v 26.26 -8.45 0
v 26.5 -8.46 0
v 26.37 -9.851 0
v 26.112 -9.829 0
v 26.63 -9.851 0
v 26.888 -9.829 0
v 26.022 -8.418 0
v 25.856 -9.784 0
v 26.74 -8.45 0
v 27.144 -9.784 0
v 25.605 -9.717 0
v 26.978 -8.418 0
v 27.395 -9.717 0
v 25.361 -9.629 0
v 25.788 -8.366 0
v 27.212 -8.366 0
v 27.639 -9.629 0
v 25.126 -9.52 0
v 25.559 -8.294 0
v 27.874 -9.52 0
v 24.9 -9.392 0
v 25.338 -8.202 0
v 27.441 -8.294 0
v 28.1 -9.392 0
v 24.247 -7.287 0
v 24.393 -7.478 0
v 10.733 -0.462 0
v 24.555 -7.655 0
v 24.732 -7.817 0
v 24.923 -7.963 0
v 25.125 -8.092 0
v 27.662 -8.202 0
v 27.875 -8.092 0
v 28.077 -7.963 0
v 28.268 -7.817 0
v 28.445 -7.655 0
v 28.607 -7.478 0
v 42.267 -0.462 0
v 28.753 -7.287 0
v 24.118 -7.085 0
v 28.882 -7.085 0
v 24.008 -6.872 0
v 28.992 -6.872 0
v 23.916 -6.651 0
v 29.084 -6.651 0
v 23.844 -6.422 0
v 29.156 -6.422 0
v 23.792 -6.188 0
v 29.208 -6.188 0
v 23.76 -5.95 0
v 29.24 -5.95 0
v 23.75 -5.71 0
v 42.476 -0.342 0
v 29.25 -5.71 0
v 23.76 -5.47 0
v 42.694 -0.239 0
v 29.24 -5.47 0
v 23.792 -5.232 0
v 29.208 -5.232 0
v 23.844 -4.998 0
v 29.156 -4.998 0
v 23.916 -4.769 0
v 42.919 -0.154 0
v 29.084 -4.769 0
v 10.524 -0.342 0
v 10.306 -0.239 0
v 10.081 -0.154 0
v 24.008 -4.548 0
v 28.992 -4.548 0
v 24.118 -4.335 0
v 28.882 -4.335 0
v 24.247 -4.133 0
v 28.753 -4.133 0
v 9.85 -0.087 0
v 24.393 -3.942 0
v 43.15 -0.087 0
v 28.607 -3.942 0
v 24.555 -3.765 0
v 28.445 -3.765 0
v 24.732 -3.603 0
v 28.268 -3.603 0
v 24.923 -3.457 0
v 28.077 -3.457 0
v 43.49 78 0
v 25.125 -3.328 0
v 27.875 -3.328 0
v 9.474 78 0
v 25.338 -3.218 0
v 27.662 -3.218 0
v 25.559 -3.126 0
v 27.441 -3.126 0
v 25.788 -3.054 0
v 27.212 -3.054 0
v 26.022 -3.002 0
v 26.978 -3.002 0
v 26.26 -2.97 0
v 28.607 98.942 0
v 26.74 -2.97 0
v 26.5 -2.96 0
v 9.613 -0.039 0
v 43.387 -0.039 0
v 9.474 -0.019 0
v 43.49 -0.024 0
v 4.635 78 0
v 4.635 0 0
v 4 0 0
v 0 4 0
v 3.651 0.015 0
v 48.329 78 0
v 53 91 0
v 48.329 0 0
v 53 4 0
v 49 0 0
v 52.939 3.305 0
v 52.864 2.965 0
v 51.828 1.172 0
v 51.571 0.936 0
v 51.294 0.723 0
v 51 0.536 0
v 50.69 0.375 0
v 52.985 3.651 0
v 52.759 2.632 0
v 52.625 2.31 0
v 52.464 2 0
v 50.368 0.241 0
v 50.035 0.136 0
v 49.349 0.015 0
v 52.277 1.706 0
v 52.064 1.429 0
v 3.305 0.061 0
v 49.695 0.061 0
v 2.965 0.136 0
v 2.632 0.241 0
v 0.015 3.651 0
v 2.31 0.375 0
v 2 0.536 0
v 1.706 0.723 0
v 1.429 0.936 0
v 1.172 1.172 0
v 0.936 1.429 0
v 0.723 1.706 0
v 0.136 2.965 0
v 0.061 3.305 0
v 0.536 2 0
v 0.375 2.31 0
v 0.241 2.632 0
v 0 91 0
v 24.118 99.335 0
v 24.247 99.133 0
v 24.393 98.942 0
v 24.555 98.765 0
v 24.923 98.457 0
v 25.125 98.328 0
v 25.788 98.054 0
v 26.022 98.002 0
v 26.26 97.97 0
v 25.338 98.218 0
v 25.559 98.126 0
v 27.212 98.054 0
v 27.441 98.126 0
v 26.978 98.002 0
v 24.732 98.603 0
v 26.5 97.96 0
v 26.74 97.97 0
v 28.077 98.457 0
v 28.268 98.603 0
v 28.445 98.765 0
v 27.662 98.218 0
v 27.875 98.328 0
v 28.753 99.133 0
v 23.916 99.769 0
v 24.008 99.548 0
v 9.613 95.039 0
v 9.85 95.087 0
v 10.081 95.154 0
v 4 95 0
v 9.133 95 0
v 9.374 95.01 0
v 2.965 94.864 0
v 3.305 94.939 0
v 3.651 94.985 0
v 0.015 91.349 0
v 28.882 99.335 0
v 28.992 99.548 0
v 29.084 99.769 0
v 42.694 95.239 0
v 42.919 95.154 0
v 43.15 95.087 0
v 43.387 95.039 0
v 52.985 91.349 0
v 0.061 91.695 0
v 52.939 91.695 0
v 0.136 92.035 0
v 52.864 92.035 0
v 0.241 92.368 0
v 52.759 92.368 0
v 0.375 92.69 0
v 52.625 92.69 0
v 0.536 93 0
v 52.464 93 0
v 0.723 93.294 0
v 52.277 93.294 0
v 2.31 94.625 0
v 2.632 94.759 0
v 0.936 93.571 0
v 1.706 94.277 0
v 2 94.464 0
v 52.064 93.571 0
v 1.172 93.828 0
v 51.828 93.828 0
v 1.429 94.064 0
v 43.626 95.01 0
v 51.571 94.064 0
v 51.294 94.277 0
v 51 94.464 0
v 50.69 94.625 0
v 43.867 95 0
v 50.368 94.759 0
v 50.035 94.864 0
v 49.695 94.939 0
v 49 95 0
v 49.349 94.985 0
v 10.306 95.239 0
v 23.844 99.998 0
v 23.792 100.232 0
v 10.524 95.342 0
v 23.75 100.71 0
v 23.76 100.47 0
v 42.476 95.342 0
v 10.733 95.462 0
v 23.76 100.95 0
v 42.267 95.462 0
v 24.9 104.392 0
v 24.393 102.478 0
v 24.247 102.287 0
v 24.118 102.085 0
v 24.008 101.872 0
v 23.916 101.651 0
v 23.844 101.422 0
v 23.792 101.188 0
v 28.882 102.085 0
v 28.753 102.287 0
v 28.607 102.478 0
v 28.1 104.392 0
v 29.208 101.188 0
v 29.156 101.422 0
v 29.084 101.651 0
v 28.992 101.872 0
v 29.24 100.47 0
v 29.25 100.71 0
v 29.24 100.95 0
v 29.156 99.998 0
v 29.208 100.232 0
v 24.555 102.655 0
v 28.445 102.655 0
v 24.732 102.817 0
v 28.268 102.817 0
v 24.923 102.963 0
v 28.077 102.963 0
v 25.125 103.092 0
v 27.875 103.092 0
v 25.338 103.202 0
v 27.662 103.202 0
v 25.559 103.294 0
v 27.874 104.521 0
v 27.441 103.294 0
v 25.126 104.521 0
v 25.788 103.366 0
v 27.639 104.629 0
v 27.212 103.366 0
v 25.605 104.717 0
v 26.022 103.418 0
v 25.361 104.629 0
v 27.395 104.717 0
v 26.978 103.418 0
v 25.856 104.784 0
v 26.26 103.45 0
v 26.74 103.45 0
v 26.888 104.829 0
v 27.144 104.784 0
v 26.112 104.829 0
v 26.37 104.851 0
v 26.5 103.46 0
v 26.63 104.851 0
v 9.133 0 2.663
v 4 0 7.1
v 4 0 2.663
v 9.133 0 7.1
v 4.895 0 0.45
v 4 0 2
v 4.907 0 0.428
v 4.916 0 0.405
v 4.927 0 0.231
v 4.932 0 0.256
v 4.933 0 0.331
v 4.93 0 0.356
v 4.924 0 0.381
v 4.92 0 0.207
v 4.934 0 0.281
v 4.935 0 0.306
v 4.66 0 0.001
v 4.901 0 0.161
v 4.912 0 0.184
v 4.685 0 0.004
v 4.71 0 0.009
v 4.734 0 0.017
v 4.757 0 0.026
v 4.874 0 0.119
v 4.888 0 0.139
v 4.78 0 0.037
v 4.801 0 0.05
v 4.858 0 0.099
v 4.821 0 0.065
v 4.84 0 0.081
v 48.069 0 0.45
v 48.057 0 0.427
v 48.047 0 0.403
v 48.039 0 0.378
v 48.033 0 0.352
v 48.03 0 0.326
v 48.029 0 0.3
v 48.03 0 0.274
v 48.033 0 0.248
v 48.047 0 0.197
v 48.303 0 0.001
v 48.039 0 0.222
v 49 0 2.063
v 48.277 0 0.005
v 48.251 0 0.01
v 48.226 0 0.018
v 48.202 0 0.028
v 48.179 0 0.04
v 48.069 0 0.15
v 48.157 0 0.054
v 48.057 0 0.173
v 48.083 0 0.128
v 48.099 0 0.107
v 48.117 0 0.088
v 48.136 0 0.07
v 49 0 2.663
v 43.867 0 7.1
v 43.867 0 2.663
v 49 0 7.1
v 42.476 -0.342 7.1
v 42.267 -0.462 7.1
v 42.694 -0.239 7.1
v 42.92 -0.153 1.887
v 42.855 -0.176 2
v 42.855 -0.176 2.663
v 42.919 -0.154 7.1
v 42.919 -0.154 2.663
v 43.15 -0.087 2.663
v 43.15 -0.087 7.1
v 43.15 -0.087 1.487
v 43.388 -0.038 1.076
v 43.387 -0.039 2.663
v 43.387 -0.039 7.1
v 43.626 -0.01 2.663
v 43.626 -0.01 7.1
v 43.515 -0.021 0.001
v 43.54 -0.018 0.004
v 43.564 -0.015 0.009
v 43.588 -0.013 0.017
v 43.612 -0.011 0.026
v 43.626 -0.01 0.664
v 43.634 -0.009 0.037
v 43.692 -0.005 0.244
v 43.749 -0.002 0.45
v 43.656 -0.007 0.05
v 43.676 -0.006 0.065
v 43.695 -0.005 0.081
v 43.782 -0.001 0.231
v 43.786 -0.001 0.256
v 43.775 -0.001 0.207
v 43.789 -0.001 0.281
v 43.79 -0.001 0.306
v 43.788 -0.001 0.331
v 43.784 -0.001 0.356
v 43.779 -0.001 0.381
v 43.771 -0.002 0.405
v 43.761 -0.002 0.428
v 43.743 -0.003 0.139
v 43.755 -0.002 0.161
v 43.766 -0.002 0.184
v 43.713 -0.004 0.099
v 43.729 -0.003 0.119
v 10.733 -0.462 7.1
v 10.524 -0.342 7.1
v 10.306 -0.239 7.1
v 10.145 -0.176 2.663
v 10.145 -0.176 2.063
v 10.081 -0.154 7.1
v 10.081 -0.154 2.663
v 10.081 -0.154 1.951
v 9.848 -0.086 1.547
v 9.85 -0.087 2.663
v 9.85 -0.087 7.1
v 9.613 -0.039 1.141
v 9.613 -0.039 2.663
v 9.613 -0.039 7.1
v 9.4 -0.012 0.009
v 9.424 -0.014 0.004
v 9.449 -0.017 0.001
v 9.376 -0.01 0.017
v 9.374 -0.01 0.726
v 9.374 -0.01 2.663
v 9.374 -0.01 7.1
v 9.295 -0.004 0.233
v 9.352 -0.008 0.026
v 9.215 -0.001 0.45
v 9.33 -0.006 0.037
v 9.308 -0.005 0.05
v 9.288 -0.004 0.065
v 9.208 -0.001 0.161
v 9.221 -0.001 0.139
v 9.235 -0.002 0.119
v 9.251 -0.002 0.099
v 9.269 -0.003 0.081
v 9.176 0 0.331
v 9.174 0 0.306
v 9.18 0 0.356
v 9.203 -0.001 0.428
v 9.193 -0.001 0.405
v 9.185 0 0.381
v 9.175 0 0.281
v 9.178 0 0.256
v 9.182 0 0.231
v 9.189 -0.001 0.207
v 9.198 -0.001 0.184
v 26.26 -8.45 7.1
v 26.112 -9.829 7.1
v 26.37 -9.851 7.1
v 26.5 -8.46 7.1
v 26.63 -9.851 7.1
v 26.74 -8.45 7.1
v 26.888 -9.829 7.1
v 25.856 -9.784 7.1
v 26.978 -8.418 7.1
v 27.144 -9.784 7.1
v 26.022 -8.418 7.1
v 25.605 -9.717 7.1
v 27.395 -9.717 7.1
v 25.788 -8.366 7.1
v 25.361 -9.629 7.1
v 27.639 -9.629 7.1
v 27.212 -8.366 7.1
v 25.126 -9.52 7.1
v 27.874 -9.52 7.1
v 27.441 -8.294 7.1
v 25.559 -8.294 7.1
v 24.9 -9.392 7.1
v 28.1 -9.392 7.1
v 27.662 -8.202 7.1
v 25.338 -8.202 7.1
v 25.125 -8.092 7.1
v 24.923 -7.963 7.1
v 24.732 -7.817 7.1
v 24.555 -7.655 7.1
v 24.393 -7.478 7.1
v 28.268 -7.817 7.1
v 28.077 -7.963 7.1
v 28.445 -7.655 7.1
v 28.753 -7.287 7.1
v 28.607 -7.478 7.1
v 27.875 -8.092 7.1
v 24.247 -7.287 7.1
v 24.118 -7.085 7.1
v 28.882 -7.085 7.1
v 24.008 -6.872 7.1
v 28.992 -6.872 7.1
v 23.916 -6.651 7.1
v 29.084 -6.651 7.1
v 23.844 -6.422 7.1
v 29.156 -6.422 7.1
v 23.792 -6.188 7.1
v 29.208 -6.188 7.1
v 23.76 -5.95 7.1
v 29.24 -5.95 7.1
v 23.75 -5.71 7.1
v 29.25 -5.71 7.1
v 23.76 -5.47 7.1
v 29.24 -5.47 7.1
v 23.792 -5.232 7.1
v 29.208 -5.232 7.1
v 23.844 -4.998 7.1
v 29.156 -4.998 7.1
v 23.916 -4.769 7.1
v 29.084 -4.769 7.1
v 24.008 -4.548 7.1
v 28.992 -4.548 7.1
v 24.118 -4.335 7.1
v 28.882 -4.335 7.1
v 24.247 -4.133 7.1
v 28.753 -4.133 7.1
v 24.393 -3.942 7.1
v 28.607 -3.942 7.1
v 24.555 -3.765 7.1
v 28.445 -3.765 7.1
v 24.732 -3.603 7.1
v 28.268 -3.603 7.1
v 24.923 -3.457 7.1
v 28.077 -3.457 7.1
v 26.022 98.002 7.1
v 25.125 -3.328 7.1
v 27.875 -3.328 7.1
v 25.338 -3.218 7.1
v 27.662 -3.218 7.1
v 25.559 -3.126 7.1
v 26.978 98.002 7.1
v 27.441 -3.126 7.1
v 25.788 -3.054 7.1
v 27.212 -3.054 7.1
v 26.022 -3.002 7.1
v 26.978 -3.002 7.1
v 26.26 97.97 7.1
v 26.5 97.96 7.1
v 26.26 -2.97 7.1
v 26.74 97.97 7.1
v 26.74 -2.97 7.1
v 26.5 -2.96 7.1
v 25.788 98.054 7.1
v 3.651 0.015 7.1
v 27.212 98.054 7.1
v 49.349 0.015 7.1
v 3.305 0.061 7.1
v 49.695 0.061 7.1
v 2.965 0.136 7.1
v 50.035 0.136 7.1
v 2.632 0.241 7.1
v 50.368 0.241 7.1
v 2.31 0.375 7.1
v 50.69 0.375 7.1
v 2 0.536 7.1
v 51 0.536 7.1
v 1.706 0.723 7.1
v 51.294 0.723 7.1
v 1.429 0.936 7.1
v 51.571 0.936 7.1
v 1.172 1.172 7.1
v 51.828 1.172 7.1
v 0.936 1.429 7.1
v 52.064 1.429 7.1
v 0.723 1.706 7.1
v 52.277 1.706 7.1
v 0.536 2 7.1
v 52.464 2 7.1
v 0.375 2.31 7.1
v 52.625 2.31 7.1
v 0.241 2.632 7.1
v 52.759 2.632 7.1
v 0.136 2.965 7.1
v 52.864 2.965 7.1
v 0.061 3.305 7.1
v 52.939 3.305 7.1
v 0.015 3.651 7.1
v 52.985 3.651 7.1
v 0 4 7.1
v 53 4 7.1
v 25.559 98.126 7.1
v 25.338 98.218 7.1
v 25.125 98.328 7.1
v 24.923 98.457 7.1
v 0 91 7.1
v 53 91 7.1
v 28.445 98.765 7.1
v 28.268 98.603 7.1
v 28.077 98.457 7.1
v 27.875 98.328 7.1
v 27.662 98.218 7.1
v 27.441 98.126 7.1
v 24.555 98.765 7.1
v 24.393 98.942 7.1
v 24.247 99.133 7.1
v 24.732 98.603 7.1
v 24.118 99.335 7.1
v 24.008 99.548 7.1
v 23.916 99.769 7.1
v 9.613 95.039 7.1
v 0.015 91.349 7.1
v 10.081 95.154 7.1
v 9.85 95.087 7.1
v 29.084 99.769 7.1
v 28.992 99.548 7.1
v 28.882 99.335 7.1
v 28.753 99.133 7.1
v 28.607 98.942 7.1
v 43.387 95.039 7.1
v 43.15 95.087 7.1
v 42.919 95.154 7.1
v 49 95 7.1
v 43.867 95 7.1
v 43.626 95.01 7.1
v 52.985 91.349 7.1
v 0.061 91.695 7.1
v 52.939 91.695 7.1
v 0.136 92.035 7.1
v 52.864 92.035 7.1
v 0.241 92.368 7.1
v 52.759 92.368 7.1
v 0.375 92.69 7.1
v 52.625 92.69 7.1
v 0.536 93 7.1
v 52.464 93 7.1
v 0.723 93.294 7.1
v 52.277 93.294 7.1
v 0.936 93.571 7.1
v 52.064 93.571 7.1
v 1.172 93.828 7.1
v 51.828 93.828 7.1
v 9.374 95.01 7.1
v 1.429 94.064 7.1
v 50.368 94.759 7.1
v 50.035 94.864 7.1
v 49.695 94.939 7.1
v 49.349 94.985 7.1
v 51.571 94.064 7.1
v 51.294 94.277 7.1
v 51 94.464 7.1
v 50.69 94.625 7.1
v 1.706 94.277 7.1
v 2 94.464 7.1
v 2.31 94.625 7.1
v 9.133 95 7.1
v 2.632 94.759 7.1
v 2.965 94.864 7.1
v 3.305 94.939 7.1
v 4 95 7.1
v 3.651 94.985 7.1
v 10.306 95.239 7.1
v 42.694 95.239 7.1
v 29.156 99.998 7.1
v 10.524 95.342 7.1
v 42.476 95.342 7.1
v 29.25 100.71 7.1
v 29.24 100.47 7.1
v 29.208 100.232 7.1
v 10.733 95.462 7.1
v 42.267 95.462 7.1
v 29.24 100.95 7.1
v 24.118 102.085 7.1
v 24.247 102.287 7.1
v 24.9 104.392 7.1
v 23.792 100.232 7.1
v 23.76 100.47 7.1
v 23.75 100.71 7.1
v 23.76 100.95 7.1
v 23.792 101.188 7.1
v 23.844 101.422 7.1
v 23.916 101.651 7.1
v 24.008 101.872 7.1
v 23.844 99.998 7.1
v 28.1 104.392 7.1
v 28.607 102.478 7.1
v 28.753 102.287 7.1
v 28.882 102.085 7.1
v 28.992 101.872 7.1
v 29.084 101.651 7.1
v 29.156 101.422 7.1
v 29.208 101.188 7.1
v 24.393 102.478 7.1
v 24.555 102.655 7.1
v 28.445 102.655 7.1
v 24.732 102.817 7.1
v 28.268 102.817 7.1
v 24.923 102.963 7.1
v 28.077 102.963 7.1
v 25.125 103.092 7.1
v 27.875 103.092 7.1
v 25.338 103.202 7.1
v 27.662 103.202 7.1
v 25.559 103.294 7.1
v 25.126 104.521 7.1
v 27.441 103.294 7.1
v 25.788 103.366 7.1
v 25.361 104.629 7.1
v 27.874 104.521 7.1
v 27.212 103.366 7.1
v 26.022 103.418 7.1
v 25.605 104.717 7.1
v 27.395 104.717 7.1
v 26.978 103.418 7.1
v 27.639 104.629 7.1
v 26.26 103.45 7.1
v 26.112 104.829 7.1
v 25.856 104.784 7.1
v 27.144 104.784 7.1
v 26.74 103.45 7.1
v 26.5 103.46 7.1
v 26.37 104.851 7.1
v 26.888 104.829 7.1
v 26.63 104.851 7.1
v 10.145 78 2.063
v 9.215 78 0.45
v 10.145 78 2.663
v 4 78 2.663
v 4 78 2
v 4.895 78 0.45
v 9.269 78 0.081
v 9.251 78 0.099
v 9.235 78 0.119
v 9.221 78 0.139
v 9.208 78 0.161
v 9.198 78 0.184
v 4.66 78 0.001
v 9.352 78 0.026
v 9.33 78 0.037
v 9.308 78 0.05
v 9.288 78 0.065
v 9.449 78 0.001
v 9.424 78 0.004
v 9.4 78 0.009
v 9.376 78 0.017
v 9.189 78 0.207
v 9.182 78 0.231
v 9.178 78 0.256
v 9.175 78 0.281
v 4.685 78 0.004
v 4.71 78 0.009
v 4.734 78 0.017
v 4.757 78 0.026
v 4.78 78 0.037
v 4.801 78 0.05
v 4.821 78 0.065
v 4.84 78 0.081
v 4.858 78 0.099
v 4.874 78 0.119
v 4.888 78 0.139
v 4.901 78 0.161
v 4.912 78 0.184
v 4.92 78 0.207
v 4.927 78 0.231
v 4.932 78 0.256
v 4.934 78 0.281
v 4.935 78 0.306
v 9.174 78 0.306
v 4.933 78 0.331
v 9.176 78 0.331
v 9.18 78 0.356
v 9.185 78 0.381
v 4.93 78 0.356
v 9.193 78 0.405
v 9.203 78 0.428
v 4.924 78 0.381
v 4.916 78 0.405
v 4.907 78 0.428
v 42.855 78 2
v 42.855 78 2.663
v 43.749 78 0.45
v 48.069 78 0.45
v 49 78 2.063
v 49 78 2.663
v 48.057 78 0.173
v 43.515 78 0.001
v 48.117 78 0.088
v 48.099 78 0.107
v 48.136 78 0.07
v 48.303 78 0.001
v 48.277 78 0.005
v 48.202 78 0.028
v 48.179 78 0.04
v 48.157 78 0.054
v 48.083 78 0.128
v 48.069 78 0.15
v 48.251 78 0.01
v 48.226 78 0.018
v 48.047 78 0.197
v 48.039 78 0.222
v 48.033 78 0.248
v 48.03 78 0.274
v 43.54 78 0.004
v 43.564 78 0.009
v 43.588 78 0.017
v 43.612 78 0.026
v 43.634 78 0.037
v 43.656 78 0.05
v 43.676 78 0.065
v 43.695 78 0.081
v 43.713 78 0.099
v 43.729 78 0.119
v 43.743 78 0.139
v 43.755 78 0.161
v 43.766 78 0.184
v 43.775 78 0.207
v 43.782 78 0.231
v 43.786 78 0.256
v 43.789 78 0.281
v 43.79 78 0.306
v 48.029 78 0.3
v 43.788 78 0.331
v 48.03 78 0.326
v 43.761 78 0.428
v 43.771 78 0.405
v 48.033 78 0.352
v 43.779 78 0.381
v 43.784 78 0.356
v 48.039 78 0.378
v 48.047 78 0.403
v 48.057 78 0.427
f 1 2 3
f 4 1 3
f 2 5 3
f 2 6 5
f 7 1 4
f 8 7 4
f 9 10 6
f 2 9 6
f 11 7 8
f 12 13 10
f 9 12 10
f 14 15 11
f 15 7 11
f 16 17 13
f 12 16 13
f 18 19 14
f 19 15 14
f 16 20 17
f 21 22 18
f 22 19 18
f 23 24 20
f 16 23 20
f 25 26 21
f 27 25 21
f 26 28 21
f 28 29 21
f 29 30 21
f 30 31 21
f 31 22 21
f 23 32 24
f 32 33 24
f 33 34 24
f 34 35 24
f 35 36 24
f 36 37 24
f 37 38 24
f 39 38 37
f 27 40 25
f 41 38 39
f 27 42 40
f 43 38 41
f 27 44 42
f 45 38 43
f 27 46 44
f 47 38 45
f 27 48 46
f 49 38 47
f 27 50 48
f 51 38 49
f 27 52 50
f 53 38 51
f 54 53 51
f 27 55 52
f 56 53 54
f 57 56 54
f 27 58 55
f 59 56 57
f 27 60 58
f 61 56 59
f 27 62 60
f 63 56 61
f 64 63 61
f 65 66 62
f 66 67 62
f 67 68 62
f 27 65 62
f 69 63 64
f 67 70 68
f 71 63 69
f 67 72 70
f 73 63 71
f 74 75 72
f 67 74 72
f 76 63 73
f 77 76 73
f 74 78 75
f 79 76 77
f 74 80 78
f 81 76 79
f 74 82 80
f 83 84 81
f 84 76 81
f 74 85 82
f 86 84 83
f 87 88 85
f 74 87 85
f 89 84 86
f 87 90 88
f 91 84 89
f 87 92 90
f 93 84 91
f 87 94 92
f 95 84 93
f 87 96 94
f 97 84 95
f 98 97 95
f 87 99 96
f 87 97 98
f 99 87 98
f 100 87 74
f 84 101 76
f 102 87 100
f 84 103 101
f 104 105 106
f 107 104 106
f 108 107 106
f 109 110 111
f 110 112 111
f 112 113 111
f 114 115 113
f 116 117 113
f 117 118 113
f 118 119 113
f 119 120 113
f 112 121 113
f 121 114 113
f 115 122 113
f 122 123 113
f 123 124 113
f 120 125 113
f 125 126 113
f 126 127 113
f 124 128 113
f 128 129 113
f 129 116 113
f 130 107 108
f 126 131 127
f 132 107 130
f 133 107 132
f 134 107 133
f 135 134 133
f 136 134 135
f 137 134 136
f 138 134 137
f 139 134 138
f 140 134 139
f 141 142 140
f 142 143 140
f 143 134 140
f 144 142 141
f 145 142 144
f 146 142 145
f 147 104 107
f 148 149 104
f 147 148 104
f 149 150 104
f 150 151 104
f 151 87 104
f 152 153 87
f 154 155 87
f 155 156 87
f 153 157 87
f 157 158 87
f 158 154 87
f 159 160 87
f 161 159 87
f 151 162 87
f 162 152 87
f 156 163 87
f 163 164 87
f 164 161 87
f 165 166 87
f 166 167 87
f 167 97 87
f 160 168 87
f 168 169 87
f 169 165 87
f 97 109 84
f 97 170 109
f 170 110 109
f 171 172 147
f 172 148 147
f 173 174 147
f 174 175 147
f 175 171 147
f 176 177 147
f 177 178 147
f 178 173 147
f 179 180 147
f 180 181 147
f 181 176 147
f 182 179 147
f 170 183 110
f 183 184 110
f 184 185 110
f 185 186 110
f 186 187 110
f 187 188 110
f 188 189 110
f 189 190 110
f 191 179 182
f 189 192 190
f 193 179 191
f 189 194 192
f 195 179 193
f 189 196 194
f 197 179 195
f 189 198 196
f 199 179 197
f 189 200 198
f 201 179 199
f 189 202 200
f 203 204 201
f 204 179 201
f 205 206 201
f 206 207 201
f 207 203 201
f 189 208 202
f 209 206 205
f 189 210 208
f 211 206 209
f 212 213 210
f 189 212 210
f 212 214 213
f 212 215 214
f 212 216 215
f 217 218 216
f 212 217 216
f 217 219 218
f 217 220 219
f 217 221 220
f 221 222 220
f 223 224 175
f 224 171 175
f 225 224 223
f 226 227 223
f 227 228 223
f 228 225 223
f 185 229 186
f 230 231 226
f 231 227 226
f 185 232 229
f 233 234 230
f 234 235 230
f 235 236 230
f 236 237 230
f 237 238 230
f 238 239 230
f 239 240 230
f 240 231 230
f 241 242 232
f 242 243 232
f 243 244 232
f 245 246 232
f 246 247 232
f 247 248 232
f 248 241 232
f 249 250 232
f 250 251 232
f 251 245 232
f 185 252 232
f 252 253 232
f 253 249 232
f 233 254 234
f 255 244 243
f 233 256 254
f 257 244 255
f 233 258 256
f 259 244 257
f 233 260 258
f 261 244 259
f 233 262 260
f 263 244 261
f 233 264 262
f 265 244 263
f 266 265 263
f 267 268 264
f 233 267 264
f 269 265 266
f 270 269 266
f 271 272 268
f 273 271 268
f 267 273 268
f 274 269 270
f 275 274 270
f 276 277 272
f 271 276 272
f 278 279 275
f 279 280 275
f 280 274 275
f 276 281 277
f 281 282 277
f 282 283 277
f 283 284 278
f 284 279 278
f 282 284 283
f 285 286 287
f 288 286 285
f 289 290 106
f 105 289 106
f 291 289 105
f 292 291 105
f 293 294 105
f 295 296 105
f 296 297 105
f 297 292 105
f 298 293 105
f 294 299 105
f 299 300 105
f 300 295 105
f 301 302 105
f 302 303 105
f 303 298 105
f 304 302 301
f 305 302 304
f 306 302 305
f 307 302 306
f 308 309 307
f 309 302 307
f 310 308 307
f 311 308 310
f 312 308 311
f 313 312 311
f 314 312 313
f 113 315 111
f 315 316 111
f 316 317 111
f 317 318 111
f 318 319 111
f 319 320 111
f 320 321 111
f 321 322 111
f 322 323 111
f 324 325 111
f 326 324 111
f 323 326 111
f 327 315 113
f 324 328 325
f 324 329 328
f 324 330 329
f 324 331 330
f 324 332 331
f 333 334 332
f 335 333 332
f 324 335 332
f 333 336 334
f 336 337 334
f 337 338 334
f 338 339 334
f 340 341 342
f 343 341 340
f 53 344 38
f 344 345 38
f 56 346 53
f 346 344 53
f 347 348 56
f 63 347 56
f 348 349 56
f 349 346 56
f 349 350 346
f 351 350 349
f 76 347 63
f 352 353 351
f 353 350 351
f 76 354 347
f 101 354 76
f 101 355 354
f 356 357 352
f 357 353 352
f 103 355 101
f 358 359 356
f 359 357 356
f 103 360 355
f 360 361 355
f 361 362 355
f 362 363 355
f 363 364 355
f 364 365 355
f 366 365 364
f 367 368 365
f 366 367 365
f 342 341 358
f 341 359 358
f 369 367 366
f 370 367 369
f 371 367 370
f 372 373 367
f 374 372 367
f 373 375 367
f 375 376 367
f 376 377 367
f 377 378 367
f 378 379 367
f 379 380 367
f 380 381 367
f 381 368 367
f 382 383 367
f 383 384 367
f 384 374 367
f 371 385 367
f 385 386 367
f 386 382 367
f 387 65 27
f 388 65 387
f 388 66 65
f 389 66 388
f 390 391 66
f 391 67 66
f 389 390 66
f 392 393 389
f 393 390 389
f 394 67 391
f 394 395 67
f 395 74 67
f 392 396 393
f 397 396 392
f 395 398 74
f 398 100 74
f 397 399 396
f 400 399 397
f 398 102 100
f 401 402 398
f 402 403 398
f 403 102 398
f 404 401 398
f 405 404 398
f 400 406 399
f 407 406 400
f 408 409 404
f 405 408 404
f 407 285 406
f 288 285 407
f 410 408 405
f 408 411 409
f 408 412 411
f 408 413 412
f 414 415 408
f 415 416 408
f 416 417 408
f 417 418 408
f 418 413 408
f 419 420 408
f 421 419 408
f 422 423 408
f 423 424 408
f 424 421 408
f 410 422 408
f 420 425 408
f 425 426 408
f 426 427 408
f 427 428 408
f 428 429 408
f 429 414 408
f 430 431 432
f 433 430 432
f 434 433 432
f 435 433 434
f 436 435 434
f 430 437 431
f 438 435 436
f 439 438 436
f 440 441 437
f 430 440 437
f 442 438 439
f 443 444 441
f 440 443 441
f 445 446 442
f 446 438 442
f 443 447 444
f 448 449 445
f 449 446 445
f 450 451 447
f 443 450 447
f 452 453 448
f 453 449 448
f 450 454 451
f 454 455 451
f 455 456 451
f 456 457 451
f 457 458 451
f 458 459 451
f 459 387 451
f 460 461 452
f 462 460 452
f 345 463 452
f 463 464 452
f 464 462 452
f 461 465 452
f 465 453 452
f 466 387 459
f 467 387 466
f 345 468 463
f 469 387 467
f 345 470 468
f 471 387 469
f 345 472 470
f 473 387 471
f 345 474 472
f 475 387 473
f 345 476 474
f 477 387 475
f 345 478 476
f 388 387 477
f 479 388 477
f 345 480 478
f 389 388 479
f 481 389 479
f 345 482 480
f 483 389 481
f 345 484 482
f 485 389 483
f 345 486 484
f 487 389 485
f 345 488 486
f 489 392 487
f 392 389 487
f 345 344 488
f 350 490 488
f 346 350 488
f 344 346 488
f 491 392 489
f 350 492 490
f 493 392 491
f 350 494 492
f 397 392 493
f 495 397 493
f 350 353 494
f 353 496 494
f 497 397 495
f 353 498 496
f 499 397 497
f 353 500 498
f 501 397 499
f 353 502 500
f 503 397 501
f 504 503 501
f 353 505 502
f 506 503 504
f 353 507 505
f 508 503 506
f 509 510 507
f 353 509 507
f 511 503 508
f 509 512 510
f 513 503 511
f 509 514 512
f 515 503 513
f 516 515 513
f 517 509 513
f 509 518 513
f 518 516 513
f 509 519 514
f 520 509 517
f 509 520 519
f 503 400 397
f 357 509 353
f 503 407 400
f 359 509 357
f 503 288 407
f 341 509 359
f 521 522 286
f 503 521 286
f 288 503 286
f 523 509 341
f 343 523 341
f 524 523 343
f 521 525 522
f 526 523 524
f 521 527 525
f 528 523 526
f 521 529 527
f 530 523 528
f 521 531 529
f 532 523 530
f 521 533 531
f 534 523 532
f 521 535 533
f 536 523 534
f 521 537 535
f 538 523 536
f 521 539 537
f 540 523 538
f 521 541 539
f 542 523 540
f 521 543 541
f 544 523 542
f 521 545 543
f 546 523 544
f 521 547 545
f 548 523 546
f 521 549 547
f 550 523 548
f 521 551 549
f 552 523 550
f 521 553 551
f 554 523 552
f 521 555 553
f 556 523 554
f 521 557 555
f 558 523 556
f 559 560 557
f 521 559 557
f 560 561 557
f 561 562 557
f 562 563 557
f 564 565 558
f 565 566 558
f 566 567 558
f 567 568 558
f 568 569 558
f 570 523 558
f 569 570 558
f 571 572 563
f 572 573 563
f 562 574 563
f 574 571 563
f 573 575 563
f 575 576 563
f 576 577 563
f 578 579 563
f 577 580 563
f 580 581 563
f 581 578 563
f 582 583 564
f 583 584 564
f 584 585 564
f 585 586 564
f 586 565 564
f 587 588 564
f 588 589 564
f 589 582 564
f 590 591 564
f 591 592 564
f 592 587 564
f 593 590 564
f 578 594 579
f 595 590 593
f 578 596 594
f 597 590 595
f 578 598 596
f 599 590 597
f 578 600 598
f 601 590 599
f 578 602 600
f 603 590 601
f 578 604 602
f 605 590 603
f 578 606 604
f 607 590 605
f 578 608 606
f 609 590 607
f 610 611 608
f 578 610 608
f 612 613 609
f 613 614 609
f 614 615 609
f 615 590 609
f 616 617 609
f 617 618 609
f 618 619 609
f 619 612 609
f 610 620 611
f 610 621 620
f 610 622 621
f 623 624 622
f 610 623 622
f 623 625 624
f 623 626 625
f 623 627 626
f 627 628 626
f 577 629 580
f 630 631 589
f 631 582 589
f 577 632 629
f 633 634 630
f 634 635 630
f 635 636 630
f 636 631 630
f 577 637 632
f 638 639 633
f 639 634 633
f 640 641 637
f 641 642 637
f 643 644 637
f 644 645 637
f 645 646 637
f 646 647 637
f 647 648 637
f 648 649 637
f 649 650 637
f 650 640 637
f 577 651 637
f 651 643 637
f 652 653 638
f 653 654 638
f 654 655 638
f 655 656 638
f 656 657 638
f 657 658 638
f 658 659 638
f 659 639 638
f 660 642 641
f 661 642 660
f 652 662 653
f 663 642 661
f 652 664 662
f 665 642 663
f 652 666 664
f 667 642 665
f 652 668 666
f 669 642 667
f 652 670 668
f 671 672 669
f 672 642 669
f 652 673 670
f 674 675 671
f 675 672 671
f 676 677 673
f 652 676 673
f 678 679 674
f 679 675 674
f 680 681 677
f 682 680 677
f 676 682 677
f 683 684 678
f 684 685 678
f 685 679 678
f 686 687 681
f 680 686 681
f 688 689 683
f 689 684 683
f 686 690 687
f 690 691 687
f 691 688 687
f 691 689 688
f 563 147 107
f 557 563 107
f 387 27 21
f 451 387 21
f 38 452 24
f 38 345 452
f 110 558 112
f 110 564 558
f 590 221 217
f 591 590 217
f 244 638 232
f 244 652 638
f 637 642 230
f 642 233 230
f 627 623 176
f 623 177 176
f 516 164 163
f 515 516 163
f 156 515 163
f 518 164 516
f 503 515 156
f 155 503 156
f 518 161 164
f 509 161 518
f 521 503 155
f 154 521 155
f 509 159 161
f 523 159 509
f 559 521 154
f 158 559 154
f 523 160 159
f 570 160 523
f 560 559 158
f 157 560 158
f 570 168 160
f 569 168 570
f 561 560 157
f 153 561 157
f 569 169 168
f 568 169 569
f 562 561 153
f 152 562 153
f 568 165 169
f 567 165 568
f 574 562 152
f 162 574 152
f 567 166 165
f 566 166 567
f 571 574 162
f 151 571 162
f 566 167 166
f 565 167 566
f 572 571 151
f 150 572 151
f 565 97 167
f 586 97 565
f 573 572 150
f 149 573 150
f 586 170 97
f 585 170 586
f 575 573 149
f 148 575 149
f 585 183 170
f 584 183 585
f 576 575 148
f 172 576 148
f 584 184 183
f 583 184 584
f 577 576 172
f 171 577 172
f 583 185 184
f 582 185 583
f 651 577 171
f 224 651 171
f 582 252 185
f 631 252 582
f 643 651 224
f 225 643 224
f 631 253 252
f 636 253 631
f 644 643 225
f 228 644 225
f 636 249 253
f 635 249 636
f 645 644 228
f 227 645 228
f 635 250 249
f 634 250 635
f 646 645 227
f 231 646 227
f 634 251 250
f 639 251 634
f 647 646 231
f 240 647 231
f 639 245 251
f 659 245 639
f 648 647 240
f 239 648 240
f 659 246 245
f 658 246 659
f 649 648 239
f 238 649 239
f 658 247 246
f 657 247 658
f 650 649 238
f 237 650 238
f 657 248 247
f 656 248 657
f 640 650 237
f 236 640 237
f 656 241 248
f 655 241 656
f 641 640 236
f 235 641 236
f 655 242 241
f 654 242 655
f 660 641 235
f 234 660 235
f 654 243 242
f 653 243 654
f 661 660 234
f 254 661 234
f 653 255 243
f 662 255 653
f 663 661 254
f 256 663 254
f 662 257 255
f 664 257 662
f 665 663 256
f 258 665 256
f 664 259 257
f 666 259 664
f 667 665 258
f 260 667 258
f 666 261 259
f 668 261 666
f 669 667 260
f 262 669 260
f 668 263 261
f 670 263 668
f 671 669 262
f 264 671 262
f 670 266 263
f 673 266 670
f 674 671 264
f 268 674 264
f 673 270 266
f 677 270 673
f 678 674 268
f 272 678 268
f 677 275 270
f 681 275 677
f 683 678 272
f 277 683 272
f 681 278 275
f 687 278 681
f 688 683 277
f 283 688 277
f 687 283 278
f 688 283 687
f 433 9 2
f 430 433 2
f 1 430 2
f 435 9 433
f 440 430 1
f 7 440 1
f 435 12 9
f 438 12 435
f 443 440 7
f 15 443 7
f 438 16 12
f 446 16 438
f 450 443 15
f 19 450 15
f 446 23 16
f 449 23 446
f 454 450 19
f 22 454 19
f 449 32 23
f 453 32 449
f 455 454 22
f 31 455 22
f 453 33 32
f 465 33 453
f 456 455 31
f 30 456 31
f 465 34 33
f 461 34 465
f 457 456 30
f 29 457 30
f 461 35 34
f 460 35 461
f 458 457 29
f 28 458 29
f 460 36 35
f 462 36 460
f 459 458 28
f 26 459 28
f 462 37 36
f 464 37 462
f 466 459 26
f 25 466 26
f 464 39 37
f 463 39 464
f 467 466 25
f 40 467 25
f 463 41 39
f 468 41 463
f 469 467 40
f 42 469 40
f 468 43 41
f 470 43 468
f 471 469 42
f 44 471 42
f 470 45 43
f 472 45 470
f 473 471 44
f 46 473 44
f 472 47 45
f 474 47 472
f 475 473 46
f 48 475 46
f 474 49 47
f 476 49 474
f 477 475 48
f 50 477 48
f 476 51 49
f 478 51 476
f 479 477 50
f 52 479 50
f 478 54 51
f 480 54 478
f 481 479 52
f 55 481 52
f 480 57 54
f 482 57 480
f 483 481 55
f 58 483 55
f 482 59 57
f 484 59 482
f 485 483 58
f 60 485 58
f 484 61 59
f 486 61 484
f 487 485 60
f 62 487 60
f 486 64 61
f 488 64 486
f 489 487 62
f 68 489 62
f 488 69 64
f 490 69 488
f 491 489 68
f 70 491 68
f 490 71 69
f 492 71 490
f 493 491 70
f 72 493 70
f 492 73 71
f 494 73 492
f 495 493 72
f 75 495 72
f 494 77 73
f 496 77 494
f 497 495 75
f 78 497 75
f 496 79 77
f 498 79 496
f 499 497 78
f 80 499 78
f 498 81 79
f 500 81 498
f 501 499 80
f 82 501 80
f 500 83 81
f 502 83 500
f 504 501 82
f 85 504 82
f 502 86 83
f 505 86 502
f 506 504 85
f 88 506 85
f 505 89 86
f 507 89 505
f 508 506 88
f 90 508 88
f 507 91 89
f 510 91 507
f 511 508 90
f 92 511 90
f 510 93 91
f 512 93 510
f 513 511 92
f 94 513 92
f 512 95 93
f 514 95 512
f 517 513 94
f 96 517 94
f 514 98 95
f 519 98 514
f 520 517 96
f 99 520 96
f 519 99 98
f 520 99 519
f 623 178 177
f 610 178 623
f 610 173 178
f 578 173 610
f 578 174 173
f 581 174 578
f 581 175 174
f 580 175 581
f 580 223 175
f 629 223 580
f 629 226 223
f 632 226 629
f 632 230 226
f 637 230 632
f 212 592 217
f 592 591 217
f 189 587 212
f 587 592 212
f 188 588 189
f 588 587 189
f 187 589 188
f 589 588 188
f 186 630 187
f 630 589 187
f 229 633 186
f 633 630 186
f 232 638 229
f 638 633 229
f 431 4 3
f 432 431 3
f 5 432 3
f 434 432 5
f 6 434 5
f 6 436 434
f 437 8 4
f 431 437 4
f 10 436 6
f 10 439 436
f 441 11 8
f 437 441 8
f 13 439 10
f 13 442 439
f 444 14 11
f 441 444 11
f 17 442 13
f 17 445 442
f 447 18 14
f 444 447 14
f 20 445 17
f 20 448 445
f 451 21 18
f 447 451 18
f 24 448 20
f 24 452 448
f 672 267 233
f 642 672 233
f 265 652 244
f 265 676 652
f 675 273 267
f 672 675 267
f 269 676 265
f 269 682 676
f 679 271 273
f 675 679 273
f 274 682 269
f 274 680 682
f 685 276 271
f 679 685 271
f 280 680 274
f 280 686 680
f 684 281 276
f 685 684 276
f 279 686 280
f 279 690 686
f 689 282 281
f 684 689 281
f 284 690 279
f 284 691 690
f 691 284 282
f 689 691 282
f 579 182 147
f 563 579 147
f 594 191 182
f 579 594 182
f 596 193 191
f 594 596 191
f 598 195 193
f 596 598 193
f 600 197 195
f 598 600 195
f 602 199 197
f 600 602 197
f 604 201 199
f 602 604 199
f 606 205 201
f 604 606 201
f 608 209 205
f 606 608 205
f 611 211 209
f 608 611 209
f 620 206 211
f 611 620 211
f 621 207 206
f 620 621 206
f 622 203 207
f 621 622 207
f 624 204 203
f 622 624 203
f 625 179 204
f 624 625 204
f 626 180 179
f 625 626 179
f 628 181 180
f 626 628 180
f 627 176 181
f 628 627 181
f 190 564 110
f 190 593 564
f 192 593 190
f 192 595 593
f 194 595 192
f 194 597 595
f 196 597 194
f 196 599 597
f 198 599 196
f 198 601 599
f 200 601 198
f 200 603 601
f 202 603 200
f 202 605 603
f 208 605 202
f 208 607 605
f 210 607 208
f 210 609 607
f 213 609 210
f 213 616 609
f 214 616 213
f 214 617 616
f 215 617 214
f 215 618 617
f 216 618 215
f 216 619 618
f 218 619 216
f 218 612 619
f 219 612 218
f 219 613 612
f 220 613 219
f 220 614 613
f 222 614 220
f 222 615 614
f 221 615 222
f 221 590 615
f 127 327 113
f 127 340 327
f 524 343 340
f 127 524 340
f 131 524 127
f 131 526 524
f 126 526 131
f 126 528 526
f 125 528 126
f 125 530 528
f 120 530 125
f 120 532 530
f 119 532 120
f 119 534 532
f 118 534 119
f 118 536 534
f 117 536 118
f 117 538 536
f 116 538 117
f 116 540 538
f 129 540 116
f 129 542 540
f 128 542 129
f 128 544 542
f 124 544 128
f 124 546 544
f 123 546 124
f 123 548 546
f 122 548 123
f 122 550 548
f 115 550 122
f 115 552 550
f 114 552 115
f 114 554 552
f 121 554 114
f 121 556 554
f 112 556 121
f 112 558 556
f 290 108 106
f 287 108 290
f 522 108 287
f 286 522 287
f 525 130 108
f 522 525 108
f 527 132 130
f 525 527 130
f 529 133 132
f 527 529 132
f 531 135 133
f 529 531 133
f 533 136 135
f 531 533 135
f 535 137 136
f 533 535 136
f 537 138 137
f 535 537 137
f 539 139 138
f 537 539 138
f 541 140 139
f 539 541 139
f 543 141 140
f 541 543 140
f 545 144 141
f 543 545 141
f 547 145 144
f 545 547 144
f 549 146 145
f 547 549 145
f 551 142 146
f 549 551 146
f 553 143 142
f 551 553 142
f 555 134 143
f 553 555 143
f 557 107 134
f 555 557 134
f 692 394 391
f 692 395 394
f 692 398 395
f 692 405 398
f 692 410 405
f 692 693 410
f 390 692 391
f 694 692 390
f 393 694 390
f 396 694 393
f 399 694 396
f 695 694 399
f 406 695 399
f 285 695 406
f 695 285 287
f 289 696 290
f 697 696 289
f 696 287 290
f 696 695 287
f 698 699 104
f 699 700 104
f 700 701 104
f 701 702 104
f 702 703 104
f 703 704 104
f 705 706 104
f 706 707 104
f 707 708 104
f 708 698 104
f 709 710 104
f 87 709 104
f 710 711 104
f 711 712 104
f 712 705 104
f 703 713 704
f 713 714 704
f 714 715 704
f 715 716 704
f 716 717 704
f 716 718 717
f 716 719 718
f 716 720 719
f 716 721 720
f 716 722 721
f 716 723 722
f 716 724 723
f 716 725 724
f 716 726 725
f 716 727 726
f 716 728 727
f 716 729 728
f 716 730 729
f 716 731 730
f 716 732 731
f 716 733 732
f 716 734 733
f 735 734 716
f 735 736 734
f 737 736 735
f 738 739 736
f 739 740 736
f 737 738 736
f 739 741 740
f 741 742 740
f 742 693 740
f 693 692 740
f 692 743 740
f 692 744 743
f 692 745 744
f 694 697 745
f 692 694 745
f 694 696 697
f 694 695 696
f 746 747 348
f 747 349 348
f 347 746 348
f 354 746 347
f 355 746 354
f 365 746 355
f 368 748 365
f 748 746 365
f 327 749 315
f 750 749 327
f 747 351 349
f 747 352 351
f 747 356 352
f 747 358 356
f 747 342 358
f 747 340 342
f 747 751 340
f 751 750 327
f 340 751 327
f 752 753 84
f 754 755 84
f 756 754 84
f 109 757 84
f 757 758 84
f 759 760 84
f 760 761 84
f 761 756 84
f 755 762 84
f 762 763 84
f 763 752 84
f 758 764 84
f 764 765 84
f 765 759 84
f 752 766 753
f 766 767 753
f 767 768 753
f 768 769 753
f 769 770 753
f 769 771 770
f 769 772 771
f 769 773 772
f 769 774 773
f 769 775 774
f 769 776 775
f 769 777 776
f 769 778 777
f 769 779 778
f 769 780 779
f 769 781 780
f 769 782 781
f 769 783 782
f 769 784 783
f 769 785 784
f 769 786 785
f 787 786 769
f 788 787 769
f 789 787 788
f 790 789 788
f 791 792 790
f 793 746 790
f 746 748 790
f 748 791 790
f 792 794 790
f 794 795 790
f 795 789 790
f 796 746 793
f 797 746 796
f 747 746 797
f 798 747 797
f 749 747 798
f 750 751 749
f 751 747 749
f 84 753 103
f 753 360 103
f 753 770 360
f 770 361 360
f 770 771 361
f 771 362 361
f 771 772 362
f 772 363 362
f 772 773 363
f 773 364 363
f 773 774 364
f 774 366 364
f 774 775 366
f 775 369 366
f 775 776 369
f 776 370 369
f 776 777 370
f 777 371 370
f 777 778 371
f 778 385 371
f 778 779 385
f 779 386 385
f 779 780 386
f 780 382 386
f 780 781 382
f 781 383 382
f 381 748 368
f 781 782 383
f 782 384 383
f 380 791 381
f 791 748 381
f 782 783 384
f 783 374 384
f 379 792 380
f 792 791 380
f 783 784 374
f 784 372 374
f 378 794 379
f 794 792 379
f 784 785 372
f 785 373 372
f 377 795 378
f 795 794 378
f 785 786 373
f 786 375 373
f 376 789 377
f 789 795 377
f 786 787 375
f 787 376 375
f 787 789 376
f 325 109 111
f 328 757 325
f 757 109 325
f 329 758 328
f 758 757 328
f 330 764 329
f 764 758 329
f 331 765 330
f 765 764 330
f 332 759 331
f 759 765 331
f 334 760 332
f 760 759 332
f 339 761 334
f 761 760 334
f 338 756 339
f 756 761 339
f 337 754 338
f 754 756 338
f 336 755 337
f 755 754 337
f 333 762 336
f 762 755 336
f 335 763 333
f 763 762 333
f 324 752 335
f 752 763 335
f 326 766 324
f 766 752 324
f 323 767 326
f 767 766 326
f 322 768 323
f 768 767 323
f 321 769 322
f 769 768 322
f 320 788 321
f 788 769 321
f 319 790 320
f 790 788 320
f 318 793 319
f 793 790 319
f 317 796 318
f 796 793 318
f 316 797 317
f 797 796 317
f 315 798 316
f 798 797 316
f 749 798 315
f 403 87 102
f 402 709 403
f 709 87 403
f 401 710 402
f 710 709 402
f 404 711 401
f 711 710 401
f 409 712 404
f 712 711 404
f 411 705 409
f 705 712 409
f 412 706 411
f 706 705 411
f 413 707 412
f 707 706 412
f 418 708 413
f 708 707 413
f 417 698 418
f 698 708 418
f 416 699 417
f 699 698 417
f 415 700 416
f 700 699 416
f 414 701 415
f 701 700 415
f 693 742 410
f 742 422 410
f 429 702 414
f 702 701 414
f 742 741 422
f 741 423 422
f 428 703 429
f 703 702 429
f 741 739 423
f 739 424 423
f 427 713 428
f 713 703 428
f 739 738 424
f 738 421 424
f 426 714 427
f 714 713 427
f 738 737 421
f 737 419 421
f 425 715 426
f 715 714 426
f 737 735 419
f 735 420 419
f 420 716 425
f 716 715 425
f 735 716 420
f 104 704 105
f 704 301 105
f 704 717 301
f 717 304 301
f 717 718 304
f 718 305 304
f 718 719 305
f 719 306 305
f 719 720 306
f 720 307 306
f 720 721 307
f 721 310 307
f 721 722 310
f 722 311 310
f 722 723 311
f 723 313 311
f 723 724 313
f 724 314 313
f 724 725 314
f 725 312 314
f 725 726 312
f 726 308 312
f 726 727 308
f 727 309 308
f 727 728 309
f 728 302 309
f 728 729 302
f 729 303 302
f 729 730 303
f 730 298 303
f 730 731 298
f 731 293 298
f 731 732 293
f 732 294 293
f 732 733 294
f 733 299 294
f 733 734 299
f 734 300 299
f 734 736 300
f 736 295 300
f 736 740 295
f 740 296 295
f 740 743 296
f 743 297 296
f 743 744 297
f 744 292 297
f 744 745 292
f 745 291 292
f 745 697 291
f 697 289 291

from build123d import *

# Parameters (mm, degrees)
ESQUISSE1_R                  = 2.75
BOSS_EXTRU_1_DEPTH           = 7.1
CONG_1_R                     = 3
CONG_2_R                     = 4
ENL_V_MAT_EXTRU_1_DEPTH      = 118.701866141
ENL_V_MAT_EXTRU_1_DEPTH_BACK = 78
CONG_3_R                     = 0.3


with BuildPart() as part:
    # Esquisse1 → Boss.-Extru.1 (new body)
    with BuildSketch(Plane.XY):
        Polygon((10, 95), (26.5, 105.4), (43, 95), (53, 95), (53, 0), (43, 0), (26.5, -10.4), (10, 0), (0, 0), (0, 95), align=None)
        with Locations((26.5, 100.71)):
            Circle(ESQUISSE1_R, mode=Mode.SUBTRACT)
        with Locations((26.5, -5.71)):
            Circle(ESQUISSE1_R, mode=Mode.SUBTRACT)
    extrude(amount=BOSS_EXTRU_1_DEPTH)

    # Congé1
    cong_1_edges = [part.edges().sort_by_distance(p)[0] for p in [
        (10, 95, 3.55),
        (26.5, 105.4, 3.55),
        (43, 95, 3.55),
        (43, 0, 3.55),
        (26.5, -10.4, 3.55),
        (10, 0, 3.55),
    ]]
    fillet(cong_1_edges, radius=CONG_1_R)

    # Congé2
    cong_2_edges = [part.edges().sort_by_distance(p)[0] for p in [
        (0, 95, 3.55),
        (53, 95, 3.55),
        (53, 0, 3.55),
        (0, 0, 3.55),
    ]]
    fillet(cong_2_edges, radius=CONG_2_R)

    # Esquisse3 → Enlèv. mat.-Extru.1 (cut, two sides: drawn at the far end of the back side and taken through both)
    with BuildSketch(Plane.XZ.offset(-ENL_V_MAT_EXTRU_1_DEPTH_BACK)):
        Polygon((5.154700538, 0), (4, 2), (4, 2.662509826), (10.145491142, 2.662509826), (10.145491142, 2.062509826), (8.954700538, 0), align=None)
        Polygon((44.009209397, 0), (42.854508858, 2), (42.854508858, 2.662509826), (49, 2.662509826), (49, 2.062509826), (47.809209397, 0), align=None)
    extrude(amount=ENL_V_MAT_EXTRU_1_DEPTH + ENL_V_MAT_EXTRU_1_DEPTH_BACK, mode=Mode.SUBTRACT)

    # Congé3
    cong_3_edges = [part.edges().sort_by_distance(p)[0] for p in [
        (44.009209397, 39, 0),
        (47.809209397, 39, 0),
        (8.954700538, 39, 0),
        (5.154700538, 39, 0),
    ]]
    fillet(cong_3_edges, radius=CONG_3_R)


solid = part.part
